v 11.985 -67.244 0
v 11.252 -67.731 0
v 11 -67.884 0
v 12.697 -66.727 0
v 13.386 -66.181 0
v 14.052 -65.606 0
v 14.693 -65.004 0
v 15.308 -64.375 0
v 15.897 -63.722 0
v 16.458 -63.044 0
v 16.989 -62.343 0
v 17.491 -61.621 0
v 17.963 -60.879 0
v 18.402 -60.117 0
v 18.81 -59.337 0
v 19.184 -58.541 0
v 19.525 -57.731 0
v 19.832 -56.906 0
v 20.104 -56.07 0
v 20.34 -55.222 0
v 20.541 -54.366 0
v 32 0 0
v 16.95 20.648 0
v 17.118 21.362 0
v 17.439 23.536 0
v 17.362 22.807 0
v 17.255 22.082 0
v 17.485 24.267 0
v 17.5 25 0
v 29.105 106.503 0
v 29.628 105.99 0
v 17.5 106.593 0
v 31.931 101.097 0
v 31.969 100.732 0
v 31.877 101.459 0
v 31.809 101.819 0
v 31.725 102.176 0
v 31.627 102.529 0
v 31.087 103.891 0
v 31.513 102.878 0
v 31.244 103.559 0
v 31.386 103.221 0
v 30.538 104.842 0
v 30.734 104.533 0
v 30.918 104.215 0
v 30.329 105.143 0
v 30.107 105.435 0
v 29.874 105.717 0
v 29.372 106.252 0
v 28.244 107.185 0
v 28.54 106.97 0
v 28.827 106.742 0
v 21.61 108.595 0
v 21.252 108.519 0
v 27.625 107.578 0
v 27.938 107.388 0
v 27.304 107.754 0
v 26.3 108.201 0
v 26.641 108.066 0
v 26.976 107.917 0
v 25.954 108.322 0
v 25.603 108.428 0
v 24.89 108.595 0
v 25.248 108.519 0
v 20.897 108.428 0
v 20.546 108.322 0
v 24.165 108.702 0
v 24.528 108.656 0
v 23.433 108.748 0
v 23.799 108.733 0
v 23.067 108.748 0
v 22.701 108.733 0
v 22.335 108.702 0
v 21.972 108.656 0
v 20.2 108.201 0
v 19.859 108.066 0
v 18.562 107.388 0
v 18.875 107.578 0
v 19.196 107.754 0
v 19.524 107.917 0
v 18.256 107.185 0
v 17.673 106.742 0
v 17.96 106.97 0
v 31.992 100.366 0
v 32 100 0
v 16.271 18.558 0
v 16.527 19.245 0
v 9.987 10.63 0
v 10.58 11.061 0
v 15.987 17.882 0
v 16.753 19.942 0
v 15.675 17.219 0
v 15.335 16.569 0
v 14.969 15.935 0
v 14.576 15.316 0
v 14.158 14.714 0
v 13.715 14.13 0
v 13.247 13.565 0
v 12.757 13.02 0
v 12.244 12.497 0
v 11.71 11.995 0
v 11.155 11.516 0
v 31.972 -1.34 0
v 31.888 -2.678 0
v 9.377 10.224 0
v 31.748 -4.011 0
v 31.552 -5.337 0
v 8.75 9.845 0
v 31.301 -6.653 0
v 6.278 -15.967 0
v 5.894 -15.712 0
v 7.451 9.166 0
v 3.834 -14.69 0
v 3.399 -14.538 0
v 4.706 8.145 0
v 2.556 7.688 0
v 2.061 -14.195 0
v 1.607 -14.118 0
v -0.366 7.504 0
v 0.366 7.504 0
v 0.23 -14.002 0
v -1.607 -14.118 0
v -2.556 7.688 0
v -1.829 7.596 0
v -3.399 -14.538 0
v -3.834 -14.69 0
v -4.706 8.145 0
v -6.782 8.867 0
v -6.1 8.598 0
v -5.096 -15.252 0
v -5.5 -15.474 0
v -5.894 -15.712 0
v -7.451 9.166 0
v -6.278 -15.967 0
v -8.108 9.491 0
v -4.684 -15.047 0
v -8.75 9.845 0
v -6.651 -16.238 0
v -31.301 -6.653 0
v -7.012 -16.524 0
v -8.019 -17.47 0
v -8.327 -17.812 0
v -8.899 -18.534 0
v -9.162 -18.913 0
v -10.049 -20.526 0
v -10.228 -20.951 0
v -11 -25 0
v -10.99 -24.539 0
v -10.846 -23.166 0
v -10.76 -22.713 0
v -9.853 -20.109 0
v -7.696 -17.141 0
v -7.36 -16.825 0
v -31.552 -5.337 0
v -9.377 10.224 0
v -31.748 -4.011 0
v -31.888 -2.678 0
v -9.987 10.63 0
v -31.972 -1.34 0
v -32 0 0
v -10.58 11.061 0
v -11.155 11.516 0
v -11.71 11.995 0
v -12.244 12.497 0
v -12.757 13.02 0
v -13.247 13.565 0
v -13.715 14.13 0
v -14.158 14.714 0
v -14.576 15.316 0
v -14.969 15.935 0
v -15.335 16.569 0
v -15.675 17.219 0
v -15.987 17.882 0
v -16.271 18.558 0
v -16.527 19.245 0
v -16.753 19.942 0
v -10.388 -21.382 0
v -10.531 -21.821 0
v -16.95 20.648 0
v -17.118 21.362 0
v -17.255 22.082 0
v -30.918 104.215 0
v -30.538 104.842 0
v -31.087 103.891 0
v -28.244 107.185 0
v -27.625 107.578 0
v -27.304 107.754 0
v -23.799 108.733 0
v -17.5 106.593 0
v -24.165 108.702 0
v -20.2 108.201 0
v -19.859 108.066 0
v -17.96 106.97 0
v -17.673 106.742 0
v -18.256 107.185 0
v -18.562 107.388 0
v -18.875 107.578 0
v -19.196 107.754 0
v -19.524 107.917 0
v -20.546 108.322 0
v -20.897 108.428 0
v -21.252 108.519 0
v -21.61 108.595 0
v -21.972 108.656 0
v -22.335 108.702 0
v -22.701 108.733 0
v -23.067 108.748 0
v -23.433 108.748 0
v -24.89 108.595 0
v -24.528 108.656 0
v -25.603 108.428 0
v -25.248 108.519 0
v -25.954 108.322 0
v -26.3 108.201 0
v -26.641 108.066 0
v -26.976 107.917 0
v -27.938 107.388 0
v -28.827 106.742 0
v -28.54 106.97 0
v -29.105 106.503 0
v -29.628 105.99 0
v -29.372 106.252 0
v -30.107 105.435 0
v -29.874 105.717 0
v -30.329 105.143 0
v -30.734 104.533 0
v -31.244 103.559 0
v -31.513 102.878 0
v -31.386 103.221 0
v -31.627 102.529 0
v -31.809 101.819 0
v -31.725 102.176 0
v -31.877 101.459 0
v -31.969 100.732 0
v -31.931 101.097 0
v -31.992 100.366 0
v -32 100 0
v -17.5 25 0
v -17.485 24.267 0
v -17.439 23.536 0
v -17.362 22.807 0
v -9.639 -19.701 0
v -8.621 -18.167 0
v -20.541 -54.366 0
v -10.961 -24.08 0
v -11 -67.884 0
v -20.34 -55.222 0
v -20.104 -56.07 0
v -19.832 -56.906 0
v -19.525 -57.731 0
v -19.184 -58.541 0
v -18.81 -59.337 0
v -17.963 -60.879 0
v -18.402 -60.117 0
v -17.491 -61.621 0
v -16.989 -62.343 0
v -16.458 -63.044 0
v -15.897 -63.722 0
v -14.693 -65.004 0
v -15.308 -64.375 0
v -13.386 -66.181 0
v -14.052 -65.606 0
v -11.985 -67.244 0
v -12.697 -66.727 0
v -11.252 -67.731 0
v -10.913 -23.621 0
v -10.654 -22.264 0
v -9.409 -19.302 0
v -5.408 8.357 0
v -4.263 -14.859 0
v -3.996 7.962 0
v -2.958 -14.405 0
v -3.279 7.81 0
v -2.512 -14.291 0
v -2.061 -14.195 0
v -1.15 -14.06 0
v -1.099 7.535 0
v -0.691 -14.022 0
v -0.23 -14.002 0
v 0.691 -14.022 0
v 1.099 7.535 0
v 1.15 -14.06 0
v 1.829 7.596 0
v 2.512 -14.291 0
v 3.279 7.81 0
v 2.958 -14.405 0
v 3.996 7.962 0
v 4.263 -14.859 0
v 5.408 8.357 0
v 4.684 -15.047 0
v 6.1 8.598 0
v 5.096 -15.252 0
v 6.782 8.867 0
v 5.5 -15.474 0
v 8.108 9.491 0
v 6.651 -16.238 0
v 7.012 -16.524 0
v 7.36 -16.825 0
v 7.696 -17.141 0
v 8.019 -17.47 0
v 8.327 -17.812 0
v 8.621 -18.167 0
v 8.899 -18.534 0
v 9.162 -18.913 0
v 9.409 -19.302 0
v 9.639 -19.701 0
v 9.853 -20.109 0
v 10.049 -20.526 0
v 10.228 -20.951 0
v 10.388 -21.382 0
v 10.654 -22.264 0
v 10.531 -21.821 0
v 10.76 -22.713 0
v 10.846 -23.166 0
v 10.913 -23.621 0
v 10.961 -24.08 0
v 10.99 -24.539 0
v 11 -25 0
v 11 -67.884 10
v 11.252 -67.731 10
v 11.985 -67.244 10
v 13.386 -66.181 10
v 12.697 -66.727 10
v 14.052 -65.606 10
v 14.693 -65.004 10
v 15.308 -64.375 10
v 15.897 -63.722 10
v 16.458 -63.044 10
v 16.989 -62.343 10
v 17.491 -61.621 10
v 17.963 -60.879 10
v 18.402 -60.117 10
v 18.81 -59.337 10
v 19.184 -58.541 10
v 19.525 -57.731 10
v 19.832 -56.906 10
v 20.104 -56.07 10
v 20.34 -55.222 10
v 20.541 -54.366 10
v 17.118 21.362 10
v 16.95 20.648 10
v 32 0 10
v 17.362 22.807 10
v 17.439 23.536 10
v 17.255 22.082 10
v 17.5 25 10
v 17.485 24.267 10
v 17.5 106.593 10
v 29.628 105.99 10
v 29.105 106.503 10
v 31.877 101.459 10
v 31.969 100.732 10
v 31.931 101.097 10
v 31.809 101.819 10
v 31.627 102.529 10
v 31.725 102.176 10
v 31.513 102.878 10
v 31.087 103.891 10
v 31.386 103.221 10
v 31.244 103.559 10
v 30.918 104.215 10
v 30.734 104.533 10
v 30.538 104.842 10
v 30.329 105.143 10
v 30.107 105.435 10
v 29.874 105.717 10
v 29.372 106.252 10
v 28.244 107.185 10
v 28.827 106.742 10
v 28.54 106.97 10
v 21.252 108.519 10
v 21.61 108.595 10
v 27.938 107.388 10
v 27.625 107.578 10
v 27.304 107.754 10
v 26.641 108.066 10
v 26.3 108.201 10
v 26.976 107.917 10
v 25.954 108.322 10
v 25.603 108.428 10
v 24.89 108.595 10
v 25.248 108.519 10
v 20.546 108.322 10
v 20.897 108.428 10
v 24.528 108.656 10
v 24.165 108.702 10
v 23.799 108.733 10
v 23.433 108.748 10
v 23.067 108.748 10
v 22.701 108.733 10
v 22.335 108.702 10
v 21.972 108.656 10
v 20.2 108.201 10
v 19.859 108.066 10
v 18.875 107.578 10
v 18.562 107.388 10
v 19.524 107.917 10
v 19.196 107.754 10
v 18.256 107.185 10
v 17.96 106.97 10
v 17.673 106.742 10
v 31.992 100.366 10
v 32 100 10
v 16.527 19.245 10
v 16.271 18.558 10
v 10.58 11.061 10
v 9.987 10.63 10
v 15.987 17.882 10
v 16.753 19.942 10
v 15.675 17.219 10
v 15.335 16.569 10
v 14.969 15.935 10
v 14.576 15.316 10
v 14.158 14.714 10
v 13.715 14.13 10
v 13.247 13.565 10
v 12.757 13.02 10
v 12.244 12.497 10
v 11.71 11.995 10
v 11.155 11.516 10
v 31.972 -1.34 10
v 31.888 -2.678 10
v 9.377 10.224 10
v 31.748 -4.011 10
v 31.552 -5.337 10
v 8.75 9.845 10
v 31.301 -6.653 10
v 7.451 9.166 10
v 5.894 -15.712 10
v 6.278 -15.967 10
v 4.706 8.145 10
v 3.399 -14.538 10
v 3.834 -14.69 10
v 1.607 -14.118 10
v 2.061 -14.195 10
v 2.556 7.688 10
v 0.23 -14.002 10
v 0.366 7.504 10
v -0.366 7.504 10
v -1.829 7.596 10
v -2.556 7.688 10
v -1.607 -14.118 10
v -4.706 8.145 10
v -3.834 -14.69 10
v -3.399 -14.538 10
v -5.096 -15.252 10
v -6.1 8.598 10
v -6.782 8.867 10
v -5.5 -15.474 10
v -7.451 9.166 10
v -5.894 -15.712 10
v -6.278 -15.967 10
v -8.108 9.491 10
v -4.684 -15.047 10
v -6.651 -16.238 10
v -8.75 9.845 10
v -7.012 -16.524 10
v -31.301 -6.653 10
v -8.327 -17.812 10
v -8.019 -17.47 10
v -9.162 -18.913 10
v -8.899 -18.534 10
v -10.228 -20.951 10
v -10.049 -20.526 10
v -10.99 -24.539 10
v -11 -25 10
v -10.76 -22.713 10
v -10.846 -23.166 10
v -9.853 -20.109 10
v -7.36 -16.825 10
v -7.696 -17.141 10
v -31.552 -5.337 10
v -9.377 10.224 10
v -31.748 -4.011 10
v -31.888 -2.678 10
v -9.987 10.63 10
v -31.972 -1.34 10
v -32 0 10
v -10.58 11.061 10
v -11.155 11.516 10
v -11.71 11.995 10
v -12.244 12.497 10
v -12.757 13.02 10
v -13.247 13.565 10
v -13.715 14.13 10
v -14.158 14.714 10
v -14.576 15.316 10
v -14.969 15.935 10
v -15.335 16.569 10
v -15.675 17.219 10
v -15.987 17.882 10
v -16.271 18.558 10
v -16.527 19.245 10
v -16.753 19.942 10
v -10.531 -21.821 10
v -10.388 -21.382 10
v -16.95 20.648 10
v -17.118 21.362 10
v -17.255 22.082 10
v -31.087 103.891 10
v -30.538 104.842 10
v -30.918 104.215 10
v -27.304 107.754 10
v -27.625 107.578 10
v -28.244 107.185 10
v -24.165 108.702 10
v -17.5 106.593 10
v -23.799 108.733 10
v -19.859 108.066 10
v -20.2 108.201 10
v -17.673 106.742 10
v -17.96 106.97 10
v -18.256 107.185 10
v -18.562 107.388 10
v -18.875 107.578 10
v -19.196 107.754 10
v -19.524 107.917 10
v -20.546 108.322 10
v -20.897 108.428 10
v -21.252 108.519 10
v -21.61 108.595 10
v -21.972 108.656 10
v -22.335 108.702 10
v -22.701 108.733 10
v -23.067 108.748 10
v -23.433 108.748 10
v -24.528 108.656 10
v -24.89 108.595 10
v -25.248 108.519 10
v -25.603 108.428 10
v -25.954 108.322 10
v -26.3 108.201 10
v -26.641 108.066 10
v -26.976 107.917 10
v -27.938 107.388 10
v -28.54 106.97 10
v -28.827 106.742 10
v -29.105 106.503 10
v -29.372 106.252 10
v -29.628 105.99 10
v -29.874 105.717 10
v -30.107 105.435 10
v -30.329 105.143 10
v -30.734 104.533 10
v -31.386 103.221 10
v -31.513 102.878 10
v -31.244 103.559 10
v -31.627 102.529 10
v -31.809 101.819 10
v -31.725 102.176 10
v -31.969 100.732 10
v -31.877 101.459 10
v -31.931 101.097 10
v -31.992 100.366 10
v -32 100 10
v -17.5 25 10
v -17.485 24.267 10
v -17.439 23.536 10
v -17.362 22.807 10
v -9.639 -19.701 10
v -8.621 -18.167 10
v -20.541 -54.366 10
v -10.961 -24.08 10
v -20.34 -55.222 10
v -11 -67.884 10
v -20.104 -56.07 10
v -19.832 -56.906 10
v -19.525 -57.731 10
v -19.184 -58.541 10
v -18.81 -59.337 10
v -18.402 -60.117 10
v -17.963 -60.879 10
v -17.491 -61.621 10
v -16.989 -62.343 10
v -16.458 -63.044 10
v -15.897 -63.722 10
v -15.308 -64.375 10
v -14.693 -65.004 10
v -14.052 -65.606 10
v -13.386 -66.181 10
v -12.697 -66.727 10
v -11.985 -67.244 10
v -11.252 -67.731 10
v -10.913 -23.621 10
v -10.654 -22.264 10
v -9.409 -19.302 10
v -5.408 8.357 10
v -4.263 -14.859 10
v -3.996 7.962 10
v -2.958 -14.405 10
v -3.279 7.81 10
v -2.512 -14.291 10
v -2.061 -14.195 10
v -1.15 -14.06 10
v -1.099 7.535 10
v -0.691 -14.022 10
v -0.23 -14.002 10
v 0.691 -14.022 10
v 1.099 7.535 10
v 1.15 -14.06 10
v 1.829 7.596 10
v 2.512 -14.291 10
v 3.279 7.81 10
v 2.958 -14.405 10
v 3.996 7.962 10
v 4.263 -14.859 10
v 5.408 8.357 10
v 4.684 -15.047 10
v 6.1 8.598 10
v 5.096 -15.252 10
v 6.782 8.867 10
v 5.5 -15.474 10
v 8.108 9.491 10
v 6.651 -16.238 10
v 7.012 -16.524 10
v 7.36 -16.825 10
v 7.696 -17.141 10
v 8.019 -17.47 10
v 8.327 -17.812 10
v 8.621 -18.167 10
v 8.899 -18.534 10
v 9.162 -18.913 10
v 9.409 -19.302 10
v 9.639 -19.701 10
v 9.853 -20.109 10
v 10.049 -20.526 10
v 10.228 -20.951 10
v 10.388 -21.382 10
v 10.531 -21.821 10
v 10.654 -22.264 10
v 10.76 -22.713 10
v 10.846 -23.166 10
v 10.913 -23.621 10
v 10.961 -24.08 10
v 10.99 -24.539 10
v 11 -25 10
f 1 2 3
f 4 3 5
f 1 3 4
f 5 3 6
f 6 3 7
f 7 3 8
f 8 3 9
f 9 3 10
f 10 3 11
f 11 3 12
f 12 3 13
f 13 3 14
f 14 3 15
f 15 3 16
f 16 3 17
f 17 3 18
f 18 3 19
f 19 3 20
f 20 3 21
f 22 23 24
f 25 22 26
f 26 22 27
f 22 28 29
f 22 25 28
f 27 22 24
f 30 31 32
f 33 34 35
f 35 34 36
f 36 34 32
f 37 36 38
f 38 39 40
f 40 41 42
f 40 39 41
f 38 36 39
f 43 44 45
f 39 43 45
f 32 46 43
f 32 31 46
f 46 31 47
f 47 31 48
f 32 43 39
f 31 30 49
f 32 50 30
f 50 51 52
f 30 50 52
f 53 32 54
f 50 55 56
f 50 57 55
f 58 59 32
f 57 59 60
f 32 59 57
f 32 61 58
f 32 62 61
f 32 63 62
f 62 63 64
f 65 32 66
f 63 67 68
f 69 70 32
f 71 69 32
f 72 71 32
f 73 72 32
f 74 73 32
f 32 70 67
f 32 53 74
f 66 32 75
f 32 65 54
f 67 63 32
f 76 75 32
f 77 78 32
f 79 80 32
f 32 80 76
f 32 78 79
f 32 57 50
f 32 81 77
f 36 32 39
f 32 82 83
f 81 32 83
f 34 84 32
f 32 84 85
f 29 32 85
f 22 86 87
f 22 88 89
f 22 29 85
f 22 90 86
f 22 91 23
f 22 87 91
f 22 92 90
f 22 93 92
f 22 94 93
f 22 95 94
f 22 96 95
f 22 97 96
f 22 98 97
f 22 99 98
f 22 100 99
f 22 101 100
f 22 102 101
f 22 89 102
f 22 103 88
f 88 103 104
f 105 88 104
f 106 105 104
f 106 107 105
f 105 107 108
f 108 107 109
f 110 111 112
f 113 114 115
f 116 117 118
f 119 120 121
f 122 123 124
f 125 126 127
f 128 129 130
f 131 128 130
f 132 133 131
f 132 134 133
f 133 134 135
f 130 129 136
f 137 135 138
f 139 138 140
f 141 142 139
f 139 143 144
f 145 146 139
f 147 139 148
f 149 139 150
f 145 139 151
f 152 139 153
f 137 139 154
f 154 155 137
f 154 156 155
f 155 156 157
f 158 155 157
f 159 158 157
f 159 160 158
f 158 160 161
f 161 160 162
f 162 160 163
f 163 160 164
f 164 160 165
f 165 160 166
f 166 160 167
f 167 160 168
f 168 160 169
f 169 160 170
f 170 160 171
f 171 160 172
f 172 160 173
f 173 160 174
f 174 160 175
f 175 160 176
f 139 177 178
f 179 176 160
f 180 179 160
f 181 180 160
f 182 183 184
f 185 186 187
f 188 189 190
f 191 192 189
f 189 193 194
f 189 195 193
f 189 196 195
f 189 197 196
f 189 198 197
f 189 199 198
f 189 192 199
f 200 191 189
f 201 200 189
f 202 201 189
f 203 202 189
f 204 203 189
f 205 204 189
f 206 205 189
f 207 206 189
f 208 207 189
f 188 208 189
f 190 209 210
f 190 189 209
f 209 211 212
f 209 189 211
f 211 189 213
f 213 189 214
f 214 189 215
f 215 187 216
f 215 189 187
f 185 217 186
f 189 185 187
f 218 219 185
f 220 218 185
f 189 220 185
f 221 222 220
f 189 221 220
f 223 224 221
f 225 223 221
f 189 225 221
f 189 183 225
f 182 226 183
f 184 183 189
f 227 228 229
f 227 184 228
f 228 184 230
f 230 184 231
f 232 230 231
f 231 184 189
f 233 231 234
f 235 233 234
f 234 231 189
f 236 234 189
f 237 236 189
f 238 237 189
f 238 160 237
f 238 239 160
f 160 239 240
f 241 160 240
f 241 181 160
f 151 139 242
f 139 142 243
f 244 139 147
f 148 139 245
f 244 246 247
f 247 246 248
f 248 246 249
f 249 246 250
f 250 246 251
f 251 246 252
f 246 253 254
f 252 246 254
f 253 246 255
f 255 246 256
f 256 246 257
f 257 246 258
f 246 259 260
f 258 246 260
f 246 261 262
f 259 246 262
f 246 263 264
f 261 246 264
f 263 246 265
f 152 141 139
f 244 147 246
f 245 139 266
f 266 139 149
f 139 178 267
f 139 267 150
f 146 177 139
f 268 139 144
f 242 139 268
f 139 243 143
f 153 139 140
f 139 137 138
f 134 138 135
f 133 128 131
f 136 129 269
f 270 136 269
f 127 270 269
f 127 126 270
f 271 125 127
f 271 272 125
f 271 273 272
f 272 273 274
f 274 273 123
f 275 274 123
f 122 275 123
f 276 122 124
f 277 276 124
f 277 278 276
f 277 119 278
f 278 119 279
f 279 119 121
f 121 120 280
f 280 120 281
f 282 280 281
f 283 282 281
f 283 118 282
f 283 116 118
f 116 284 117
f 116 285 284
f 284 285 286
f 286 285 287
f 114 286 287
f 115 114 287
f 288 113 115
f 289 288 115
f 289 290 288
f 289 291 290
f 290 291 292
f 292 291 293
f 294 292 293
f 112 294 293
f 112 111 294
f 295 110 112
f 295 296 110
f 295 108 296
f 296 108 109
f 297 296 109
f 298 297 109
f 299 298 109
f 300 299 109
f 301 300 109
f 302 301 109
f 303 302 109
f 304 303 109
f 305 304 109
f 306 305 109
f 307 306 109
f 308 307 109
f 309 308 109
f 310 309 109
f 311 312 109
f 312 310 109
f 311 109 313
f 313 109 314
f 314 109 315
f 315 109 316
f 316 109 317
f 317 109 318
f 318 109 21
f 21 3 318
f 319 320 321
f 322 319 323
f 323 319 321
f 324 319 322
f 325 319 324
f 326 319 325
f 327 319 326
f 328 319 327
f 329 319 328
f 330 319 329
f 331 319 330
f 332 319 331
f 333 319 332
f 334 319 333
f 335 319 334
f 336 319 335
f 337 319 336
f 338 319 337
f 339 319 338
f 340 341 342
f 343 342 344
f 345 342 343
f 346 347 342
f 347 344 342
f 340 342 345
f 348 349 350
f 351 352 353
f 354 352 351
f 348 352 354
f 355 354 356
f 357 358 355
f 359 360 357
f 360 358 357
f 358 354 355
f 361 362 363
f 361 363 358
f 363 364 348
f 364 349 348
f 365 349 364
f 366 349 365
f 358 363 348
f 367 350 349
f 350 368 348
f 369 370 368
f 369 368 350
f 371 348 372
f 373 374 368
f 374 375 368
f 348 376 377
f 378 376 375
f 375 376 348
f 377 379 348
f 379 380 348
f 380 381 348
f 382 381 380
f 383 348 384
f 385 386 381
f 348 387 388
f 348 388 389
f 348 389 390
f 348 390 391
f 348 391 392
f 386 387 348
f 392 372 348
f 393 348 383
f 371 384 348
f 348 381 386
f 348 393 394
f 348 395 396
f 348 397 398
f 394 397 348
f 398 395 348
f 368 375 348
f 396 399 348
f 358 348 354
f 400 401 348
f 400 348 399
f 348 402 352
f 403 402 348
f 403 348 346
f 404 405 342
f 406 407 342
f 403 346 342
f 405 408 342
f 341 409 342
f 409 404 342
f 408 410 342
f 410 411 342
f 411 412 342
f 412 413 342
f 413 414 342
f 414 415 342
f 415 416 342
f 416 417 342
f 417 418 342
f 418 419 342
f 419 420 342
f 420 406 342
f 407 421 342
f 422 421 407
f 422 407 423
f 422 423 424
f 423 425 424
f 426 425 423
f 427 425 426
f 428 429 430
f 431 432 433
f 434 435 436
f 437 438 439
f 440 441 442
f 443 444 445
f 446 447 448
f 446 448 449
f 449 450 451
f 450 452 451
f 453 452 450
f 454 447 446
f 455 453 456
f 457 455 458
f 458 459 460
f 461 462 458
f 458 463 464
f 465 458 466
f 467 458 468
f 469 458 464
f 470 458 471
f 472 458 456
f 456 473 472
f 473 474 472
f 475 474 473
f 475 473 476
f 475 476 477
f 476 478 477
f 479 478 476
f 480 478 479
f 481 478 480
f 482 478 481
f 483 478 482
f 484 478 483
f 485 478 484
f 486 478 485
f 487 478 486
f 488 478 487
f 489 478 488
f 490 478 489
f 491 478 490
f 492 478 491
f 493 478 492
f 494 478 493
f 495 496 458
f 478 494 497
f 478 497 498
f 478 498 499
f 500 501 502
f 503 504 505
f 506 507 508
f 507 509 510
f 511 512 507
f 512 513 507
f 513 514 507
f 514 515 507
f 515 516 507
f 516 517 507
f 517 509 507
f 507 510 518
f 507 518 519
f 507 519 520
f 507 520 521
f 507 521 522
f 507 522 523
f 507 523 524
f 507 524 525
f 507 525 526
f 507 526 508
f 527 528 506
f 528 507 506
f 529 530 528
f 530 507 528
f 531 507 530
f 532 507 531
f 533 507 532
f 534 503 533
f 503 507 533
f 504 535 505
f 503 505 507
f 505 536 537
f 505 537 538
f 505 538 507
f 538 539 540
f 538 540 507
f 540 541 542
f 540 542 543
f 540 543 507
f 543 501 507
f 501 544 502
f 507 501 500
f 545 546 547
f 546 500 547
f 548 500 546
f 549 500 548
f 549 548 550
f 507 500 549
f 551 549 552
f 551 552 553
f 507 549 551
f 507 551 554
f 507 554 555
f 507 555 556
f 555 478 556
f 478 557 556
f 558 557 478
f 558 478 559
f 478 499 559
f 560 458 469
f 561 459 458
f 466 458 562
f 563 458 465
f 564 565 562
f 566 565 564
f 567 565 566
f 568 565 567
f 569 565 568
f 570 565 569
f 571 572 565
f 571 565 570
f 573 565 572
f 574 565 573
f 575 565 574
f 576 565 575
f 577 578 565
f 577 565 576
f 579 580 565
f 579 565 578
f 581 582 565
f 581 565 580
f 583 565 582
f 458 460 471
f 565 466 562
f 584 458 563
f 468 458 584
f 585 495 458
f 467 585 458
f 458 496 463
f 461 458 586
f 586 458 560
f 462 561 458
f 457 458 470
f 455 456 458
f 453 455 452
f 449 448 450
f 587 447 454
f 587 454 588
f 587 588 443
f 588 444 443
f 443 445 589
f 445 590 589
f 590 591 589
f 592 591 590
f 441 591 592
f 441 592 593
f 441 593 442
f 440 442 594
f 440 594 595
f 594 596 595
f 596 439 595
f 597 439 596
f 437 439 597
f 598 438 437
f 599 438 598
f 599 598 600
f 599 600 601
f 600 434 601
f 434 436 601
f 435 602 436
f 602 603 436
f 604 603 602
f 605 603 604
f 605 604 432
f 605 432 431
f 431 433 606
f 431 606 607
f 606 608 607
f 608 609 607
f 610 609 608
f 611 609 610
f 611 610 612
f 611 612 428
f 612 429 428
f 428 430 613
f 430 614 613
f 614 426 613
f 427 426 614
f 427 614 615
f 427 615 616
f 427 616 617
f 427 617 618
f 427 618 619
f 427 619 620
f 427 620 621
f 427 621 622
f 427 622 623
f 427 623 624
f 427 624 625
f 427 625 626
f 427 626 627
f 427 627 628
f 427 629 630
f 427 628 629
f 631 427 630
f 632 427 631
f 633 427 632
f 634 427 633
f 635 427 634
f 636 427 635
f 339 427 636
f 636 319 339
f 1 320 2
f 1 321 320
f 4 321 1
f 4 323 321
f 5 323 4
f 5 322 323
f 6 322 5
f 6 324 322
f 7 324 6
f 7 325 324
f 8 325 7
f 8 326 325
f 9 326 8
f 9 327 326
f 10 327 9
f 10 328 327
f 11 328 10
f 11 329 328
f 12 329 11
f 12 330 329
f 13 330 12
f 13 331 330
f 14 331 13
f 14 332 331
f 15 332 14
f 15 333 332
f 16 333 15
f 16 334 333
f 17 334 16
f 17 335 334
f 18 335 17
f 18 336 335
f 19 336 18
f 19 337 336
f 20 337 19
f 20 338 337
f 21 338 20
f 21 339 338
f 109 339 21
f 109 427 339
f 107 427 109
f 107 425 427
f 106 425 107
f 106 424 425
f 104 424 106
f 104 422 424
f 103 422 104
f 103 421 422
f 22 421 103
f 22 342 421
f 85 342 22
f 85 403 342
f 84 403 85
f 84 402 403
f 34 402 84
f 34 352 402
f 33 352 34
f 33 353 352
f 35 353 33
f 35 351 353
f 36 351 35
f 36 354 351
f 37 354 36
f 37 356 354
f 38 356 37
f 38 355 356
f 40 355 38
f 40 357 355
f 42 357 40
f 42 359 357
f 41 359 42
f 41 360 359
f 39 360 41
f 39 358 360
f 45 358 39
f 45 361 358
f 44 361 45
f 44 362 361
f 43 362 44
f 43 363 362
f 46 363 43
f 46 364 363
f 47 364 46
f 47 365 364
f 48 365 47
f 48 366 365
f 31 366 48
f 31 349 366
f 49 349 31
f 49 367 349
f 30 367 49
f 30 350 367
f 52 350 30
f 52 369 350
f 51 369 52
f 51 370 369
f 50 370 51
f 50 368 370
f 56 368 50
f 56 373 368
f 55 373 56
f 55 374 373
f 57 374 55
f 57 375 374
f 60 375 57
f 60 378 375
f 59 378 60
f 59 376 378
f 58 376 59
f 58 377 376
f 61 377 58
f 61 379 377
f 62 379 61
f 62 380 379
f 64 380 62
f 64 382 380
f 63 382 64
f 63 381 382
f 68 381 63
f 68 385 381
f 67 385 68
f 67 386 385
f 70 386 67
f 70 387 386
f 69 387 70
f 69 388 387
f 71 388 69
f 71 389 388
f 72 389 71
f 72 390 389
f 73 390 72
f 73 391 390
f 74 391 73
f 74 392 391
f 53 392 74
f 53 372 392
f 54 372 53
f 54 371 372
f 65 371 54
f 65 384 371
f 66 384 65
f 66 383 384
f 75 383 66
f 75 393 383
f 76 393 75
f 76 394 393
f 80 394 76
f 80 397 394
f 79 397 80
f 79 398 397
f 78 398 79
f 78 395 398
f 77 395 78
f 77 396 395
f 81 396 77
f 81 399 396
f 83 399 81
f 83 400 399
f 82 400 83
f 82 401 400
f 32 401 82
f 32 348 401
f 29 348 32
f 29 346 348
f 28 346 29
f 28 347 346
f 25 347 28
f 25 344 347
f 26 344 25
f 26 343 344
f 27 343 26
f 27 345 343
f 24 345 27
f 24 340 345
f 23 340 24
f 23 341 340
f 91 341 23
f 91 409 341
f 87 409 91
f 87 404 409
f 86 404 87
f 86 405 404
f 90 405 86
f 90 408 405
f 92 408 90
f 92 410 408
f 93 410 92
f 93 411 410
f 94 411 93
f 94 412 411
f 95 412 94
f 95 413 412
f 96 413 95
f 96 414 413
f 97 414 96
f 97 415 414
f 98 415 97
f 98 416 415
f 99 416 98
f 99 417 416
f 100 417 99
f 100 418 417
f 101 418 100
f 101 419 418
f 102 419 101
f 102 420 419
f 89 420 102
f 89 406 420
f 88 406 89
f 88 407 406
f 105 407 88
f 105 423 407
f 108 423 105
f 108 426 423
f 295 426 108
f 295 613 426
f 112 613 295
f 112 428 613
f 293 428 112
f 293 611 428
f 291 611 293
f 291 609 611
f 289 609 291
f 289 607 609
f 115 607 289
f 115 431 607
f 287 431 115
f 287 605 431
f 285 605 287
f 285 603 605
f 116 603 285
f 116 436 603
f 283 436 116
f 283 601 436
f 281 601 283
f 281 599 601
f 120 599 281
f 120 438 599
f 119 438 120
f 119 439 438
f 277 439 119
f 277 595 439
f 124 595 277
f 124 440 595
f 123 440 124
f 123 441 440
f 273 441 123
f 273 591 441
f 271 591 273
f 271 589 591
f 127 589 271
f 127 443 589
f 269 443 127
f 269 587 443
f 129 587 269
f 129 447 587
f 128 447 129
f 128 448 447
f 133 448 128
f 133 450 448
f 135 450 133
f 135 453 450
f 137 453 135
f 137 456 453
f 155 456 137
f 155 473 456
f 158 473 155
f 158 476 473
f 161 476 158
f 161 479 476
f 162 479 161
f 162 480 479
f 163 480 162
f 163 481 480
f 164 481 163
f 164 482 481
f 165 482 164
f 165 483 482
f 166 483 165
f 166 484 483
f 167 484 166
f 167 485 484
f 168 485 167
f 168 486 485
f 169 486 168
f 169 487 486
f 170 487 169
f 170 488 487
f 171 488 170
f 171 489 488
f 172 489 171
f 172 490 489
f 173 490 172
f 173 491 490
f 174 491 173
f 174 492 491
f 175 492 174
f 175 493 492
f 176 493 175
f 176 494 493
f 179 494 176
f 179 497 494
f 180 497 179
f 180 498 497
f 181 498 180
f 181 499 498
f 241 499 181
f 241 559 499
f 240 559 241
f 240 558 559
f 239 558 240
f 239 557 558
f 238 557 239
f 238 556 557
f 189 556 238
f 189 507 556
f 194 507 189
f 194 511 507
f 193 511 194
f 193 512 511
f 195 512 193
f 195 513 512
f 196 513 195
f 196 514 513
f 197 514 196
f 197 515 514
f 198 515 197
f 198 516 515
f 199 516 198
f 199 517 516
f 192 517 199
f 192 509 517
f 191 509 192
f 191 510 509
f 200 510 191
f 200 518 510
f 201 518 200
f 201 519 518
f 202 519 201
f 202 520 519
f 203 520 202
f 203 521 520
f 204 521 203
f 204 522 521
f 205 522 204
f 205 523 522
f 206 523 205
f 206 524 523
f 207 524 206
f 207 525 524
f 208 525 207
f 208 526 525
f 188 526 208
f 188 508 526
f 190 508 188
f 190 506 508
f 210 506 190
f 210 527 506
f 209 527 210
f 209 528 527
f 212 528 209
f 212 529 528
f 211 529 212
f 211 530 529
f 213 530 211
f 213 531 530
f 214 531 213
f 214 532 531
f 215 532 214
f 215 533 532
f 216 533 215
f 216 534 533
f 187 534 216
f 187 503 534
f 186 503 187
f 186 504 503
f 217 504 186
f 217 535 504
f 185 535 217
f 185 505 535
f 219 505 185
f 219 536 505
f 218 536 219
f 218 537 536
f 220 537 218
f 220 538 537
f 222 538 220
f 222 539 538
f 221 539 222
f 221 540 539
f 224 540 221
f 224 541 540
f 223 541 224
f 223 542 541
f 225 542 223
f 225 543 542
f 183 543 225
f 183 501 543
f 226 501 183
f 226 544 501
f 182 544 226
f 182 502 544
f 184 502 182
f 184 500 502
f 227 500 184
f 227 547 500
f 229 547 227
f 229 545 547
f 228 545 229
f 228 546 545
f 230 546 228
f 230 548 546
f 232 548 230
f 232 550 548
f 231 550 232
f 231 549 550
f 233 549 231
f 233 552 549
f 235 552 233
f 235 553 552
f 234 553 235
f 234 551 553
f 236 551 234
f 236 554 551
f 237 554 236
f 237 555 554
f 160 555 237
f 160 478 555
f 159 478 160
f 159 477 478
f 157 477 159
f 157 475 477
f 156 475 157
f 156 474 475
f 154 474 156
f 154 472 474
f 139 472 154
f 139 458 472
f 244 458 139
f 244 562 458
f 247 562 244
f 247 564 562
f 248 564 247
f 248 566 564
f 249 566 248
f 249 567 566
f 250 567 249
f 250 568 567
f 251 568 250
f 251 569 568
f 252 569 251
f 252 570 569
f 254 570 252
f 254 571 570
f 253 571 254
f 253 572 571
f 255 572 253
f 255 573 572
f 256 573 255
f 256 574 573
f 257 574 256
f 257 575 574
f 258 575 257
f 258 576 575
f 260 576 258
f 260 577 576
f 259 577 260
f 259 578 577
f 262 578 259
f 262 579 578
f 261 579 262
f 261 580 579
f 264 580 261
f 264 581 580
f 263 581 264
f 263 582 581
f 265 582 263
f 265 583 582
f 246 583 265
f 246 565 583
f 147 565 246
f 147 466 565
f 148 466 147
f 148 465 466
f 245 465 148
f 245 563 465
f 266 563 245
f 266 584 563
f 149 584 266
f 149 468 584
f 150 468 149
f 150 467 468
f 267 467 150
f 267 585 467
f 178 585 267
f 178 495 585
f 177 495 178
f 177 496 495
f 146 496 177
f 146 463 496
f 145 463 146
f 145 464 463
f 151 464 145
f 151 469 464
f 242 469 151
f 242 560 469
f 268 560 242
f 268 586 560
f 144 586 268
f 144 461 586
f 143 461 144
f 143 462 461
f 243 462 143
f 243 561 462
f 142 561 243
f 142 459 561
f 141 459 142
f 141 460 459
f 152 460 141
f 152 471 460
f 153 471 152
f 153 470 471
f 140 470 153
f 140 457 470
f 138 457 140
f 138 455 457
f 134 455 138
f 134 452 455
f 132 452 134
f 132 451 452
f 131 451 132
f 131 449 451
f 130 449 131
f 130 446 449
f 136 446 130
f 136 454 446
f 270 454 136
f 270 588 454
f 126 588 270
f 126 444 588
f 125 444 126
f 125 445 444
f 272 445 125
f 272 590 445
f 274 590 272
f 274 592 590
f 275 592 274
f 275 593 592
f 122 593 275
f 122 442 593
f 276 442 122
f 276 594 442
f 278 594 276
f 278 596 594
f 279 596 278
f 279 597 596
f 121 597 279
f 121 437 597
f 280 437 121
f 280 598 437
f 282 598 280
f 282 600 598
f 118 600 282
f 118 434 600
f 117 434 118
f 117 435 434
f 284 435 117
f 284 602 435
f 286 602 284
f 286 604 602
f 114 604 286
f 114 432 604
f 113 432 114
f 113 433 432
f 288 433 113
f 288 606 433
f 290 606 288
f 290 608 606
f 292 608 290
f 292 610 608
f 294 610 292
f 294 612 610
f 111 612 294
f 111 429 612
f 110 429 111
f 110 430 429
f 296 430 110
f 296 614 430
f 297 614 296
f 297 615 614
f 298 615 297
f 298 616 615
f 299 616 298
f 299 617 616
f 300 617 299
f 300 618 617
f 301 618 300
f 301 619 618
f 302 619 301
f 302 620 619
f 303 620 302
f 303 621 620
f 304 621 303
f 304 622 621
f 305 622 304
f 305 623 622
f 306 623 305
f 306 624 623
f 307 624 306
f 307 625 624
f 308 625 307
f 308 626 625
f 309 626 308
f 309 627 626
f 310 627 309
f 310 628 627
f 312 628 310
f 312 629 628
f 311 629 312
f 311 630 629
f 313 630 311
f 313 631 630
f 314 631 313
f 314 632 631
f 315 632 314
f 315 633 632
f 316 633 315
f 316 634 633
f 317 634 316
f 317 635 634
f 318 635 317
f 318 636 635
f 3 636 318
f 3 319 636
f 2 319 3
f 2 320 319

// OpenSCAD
$fn = 150;
wall_dia = 22;
pipe_dia = 35;
wall_height = 50;

linear_extrude(10)
difference() {
    union(){
        hull() {
            translate([0, - wall_height, 0]) {
                circle(d = wall_dia + 20);
            }
            circle(d = pipe_dia + 29);
            translate([(wall_dia+20/2) - pipe_dia/4, + 2*wall_height, 0]) {
                circle(d = pipe_dia /2);
            }
        }
        hull(){
            circle(d = pipe_dia + 29);
            translate([-(wall_dia+20/2) + pipe_dia/4, + 2*wall_height, 0]) {
                circle(d = pipe_dia /2);
            }
        }
    }

    translate([0, - 25, 0])
        hull() {
            translate([0, - wall_height, 0]) {
                circle(d = wall_dia);
            }
            circle(d = wall_dia);
        }

    translate([0, 25, 0])
        hull() {
            translate([0, 3*pipe_dia, 0]) {
                circle(d = pipe_dia);
            }
            circle(d = pipe_dia);
        }

}
